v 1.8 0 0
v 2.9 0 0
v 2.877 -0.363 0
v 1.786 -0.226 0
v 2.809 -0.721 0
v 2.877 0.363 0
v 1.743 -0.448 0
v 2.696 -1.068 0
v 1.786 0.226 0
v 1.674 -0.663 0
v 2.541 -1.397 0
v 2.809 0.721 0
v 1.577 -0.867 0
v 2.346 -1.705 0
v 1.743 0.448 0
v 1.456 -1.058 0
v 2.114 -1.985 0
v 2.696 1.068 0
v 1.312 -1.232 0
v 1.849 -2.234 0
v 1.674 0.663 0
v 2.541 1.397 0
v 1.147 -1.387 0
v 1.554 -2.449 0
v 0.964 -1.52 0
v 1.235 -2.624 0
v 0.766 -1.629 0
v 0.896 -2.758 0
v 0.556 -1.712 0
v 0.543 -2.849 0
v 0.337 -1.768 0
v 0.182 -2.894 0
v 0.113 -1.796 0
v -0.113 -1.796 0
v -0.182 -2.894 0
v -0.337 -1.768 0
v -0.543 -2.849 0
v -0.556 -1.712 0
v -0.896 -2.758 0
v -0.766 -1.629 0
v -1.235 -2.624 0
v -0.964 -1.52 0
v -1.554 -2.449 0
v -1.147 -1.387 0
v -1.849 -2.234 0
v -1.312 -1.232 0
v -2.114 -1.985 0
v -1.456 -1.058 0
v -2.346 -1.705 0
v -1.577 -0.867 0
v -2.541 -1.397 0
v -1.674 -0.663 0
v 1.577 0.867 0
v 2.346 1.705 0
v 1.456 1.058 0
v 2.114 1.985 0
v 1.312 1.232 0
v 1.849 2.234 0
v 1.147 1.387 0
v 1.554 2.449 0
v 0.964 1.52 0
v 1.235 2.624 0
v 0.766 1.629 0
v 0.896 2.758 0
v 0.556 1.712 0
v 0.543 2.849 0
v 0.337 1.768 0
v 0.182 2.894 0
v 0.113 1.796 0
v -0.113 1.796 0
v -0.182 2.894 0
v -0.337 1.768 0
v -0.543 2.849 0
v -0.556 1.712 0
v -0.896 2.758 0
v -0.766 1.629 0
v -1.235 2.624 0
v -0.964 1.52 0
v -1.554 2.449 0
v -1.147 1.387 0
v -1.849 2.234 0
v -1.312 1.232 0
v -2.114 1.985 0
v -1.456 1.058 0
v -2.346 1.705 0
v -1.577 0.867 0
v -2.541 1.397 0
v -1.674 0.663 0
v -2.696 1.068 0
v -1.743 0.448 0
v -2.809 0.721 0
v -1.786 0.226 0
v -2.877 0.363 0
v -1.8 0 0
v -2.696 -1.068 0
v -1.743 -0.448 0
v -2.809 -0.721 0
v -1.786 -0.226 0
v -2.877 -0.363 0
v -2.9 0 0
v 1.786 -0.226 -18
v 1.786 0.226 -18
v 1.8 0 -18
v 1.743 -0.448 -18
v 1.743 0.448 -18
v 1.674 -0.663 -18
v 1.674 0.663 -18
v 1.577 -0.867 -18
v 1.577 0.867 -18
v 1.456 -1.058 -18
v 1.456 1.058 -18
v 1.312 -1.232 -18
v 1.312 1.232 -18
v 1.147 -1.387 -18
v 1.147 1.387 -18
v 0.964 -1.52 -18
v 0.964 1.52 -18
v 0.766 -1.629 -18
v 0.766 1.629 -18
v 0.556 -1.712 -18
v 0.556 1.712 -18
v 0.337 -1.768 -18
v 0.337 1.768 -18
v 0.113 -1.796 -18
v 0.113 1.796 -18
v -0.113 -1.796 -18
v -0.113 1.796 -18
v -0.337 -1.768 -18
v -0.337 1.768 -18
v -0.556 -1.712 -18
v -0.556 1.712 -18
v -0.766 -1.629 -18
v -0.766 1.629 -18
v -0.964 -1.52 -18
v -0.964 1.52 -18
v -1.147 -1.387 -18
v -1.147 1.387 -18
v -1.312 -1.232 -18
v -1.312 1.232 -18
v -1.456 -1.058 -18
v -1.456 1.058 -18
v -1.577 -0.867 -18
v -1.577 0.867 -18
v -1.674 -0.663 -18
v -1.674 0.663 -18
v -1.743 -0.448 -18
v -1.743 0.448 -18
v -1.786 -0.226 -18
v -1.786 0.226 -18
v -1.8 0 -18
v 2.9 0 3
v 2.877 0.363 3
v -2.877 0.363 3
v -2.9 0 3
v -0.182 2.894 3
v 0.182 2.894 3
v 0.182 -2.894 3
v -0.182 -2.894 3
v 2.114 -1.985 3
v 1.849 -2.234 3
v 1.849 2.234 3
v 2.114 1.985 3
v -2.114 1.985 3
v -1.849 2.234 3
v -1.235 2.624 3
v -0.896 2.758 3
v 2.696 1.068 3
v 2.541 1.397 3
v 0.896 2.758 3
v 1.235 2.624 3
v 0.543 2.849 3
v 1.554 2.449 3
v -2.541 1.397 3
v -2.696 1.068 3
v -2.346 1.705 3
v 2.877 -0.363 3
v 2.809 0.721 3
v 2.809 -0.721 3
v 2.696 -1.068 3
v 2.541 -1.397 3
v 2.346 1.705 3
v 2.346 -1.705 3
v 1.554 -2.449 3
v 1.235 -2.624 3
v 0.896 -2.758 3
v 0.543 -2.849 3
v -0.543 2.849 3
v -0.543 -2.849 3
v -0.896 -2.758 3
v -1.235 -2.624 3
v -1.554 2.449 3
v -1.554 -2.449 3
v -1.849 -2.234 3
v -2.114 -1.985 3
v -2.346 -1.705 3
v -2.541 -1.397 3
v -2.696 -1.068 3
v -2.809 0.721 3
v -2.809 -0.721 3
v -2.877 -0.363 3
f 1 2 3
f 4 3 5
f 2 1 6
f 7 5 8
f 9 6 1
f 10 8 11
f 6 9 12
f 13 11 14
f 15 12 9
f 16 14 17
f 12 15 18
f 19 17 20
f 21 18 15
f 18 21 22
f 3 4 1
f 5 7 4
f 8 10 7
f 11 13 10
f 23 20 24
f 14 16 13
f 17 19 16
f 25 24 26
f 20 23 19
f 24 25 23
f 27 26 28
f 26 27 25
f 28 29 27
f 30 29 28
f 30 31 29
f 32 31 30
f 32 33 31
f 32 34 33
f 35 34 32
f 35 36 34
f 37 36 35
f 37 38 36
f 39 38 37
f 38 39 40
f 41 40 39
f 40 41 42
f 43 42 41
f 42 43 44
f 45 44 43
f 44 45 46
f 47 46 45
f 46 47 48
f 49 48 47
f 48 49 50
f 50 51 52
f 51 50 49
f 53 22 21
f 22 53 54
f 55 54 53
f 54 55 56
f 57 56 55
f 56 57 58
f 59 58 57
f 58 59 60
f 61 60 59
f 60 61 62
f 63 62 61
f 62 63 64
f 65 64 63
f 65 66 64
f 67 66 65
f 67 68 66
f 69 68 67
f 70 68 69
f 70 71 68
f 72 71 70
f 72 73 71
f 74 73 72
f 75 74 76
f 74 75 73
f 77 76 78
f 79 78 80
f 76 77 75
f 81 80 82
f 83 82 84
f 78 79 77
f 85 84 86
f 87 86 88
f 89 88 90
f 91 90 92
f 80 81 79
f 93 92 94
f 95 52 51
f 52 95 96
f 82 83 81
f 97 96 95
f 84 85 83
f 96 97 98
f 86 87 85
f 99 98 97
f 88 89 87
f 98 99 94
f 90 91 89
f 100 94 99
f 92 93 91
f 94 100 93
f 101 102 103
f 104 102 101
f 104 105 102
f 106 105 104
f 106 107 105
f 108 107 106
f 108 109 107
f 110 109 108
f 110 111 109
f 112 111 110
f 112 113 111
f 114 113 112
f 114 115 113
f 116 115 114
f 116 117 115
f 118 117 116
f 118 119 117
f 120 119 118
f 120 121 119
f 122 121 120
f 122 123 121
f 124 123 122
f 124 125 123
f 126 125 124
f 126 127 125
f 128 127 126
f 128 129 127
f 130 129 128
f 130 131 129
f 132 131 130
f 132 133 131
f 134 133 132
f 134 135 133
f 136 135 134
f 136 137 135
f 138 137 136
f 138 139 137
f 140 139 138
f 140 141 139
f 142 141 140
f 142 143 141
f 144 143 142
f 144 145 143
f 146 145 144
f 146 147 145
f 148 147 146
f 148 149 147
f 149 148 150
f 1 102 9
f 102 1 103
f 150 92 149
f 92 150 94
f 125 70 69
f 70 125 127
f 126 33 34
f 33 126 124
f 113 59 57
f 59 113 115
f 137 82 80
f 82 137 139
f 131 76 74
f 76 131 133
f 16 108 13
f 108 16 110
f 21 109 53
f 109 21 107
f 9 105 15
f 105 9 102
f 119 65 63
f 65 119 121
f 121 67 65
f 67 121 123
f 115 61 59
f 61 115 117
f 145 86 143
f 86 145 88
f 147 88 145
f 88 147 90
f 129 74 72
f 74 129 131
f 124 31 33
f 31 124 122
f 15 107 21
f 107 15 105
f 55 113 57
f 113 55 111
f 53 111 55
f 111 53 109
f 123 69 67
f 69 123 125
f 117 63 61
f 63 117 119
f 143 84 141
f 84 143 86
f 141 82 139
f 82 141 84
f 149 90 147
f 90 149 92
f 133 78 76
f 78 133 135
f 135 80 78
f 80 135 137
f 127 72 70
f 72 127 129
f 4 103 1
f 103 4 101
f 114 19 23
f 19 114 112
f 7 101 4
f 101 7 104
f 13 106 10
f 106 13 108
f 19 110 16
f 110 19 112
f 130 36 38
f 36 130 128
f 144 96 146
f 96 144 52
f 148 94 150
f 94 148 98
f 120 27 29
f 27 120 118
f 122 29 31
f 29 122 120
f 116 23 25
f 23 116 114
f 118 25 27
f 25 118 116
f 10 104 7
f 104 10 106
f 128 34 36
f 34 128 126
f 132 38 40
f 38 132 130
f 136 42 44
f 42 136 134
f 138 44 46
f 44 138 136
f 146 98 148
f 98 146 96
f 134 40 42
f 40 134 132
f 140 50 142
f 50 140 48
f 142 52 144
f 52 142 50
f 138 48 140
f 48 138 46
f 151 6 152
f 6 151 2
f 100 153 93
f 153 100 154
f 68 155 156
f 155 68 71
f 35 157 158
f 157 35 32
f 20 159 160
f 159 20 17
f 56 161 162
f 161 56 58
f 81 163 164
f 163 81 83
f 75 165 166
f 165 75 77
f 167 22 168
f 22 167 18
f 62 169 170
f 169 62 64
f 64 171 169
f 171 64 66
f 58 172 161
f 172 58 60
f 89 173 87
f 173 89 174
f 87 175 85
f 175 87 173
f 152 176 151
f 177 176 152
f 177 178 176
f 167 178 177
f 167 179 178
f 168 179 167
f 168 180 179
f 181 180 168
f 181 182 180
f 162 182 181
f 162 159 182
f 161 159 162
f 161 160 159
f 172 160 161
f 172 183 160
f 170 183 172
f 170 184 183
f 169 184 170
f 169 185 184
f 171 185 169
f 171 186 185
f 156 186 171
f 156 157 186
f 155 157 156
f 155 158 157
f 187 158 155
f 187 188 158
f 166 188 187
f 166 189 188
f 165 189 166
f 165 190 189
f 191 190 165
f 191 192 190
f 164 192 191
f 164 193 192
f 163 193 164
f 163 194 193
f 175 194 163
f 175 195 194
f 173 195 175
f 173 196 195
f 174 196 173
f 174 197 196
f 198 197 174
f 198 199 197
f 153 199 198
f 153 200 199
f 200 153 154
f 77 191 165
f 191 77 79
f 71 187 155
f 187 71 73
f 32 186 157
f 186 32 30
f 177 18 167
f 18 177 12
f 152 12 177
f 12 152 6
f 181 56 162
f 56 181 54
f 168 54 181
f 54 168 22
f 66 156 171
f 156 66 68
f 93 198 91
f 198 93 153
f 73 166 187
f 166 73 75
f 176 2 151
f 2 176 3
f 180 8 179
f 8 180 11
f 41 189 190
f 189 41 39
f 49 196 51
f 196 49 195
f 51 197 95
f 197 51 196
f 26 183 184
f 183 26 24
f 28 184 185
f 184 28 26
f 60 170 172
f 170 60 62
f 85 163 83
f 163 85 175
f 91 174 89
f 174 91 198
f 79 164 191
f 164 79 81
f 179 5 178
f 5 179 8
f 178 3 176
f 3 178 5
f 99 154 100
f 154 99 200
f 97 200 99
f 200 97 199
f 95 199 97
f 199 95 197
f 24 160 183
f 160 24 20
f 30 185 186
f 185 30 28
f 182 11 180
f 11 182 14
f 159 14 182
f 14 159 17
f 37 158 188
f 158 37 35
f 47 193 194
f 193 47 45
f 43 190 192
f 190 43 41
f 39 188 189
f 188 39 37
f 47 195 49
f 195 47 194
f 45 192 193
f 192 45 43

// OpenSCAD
$fn = 50;


difference() {
	union() {
		translate(v = [0, 0, 0]) {
			rotate(a = [0, 0, 0]) {
				difference() {
					union() {
						translate(v = [0, 0, -18.0000000000]) {
							cylinder(h = 18, r = 1.5000000000);
						}
						translate(v = [0, 0, -18.0000000000]) {
							cylinder(h = 18, r = 1.8000000000);
						}
						cylinder(h = 3, r = 2.9000000000);
						translate(v = [0, 0, -18.0000000000]) {
							cylinder(h = 18, r = 1.5000000000);
						}
					}
					union();
				}
			}
		}
	}
	union();
}
